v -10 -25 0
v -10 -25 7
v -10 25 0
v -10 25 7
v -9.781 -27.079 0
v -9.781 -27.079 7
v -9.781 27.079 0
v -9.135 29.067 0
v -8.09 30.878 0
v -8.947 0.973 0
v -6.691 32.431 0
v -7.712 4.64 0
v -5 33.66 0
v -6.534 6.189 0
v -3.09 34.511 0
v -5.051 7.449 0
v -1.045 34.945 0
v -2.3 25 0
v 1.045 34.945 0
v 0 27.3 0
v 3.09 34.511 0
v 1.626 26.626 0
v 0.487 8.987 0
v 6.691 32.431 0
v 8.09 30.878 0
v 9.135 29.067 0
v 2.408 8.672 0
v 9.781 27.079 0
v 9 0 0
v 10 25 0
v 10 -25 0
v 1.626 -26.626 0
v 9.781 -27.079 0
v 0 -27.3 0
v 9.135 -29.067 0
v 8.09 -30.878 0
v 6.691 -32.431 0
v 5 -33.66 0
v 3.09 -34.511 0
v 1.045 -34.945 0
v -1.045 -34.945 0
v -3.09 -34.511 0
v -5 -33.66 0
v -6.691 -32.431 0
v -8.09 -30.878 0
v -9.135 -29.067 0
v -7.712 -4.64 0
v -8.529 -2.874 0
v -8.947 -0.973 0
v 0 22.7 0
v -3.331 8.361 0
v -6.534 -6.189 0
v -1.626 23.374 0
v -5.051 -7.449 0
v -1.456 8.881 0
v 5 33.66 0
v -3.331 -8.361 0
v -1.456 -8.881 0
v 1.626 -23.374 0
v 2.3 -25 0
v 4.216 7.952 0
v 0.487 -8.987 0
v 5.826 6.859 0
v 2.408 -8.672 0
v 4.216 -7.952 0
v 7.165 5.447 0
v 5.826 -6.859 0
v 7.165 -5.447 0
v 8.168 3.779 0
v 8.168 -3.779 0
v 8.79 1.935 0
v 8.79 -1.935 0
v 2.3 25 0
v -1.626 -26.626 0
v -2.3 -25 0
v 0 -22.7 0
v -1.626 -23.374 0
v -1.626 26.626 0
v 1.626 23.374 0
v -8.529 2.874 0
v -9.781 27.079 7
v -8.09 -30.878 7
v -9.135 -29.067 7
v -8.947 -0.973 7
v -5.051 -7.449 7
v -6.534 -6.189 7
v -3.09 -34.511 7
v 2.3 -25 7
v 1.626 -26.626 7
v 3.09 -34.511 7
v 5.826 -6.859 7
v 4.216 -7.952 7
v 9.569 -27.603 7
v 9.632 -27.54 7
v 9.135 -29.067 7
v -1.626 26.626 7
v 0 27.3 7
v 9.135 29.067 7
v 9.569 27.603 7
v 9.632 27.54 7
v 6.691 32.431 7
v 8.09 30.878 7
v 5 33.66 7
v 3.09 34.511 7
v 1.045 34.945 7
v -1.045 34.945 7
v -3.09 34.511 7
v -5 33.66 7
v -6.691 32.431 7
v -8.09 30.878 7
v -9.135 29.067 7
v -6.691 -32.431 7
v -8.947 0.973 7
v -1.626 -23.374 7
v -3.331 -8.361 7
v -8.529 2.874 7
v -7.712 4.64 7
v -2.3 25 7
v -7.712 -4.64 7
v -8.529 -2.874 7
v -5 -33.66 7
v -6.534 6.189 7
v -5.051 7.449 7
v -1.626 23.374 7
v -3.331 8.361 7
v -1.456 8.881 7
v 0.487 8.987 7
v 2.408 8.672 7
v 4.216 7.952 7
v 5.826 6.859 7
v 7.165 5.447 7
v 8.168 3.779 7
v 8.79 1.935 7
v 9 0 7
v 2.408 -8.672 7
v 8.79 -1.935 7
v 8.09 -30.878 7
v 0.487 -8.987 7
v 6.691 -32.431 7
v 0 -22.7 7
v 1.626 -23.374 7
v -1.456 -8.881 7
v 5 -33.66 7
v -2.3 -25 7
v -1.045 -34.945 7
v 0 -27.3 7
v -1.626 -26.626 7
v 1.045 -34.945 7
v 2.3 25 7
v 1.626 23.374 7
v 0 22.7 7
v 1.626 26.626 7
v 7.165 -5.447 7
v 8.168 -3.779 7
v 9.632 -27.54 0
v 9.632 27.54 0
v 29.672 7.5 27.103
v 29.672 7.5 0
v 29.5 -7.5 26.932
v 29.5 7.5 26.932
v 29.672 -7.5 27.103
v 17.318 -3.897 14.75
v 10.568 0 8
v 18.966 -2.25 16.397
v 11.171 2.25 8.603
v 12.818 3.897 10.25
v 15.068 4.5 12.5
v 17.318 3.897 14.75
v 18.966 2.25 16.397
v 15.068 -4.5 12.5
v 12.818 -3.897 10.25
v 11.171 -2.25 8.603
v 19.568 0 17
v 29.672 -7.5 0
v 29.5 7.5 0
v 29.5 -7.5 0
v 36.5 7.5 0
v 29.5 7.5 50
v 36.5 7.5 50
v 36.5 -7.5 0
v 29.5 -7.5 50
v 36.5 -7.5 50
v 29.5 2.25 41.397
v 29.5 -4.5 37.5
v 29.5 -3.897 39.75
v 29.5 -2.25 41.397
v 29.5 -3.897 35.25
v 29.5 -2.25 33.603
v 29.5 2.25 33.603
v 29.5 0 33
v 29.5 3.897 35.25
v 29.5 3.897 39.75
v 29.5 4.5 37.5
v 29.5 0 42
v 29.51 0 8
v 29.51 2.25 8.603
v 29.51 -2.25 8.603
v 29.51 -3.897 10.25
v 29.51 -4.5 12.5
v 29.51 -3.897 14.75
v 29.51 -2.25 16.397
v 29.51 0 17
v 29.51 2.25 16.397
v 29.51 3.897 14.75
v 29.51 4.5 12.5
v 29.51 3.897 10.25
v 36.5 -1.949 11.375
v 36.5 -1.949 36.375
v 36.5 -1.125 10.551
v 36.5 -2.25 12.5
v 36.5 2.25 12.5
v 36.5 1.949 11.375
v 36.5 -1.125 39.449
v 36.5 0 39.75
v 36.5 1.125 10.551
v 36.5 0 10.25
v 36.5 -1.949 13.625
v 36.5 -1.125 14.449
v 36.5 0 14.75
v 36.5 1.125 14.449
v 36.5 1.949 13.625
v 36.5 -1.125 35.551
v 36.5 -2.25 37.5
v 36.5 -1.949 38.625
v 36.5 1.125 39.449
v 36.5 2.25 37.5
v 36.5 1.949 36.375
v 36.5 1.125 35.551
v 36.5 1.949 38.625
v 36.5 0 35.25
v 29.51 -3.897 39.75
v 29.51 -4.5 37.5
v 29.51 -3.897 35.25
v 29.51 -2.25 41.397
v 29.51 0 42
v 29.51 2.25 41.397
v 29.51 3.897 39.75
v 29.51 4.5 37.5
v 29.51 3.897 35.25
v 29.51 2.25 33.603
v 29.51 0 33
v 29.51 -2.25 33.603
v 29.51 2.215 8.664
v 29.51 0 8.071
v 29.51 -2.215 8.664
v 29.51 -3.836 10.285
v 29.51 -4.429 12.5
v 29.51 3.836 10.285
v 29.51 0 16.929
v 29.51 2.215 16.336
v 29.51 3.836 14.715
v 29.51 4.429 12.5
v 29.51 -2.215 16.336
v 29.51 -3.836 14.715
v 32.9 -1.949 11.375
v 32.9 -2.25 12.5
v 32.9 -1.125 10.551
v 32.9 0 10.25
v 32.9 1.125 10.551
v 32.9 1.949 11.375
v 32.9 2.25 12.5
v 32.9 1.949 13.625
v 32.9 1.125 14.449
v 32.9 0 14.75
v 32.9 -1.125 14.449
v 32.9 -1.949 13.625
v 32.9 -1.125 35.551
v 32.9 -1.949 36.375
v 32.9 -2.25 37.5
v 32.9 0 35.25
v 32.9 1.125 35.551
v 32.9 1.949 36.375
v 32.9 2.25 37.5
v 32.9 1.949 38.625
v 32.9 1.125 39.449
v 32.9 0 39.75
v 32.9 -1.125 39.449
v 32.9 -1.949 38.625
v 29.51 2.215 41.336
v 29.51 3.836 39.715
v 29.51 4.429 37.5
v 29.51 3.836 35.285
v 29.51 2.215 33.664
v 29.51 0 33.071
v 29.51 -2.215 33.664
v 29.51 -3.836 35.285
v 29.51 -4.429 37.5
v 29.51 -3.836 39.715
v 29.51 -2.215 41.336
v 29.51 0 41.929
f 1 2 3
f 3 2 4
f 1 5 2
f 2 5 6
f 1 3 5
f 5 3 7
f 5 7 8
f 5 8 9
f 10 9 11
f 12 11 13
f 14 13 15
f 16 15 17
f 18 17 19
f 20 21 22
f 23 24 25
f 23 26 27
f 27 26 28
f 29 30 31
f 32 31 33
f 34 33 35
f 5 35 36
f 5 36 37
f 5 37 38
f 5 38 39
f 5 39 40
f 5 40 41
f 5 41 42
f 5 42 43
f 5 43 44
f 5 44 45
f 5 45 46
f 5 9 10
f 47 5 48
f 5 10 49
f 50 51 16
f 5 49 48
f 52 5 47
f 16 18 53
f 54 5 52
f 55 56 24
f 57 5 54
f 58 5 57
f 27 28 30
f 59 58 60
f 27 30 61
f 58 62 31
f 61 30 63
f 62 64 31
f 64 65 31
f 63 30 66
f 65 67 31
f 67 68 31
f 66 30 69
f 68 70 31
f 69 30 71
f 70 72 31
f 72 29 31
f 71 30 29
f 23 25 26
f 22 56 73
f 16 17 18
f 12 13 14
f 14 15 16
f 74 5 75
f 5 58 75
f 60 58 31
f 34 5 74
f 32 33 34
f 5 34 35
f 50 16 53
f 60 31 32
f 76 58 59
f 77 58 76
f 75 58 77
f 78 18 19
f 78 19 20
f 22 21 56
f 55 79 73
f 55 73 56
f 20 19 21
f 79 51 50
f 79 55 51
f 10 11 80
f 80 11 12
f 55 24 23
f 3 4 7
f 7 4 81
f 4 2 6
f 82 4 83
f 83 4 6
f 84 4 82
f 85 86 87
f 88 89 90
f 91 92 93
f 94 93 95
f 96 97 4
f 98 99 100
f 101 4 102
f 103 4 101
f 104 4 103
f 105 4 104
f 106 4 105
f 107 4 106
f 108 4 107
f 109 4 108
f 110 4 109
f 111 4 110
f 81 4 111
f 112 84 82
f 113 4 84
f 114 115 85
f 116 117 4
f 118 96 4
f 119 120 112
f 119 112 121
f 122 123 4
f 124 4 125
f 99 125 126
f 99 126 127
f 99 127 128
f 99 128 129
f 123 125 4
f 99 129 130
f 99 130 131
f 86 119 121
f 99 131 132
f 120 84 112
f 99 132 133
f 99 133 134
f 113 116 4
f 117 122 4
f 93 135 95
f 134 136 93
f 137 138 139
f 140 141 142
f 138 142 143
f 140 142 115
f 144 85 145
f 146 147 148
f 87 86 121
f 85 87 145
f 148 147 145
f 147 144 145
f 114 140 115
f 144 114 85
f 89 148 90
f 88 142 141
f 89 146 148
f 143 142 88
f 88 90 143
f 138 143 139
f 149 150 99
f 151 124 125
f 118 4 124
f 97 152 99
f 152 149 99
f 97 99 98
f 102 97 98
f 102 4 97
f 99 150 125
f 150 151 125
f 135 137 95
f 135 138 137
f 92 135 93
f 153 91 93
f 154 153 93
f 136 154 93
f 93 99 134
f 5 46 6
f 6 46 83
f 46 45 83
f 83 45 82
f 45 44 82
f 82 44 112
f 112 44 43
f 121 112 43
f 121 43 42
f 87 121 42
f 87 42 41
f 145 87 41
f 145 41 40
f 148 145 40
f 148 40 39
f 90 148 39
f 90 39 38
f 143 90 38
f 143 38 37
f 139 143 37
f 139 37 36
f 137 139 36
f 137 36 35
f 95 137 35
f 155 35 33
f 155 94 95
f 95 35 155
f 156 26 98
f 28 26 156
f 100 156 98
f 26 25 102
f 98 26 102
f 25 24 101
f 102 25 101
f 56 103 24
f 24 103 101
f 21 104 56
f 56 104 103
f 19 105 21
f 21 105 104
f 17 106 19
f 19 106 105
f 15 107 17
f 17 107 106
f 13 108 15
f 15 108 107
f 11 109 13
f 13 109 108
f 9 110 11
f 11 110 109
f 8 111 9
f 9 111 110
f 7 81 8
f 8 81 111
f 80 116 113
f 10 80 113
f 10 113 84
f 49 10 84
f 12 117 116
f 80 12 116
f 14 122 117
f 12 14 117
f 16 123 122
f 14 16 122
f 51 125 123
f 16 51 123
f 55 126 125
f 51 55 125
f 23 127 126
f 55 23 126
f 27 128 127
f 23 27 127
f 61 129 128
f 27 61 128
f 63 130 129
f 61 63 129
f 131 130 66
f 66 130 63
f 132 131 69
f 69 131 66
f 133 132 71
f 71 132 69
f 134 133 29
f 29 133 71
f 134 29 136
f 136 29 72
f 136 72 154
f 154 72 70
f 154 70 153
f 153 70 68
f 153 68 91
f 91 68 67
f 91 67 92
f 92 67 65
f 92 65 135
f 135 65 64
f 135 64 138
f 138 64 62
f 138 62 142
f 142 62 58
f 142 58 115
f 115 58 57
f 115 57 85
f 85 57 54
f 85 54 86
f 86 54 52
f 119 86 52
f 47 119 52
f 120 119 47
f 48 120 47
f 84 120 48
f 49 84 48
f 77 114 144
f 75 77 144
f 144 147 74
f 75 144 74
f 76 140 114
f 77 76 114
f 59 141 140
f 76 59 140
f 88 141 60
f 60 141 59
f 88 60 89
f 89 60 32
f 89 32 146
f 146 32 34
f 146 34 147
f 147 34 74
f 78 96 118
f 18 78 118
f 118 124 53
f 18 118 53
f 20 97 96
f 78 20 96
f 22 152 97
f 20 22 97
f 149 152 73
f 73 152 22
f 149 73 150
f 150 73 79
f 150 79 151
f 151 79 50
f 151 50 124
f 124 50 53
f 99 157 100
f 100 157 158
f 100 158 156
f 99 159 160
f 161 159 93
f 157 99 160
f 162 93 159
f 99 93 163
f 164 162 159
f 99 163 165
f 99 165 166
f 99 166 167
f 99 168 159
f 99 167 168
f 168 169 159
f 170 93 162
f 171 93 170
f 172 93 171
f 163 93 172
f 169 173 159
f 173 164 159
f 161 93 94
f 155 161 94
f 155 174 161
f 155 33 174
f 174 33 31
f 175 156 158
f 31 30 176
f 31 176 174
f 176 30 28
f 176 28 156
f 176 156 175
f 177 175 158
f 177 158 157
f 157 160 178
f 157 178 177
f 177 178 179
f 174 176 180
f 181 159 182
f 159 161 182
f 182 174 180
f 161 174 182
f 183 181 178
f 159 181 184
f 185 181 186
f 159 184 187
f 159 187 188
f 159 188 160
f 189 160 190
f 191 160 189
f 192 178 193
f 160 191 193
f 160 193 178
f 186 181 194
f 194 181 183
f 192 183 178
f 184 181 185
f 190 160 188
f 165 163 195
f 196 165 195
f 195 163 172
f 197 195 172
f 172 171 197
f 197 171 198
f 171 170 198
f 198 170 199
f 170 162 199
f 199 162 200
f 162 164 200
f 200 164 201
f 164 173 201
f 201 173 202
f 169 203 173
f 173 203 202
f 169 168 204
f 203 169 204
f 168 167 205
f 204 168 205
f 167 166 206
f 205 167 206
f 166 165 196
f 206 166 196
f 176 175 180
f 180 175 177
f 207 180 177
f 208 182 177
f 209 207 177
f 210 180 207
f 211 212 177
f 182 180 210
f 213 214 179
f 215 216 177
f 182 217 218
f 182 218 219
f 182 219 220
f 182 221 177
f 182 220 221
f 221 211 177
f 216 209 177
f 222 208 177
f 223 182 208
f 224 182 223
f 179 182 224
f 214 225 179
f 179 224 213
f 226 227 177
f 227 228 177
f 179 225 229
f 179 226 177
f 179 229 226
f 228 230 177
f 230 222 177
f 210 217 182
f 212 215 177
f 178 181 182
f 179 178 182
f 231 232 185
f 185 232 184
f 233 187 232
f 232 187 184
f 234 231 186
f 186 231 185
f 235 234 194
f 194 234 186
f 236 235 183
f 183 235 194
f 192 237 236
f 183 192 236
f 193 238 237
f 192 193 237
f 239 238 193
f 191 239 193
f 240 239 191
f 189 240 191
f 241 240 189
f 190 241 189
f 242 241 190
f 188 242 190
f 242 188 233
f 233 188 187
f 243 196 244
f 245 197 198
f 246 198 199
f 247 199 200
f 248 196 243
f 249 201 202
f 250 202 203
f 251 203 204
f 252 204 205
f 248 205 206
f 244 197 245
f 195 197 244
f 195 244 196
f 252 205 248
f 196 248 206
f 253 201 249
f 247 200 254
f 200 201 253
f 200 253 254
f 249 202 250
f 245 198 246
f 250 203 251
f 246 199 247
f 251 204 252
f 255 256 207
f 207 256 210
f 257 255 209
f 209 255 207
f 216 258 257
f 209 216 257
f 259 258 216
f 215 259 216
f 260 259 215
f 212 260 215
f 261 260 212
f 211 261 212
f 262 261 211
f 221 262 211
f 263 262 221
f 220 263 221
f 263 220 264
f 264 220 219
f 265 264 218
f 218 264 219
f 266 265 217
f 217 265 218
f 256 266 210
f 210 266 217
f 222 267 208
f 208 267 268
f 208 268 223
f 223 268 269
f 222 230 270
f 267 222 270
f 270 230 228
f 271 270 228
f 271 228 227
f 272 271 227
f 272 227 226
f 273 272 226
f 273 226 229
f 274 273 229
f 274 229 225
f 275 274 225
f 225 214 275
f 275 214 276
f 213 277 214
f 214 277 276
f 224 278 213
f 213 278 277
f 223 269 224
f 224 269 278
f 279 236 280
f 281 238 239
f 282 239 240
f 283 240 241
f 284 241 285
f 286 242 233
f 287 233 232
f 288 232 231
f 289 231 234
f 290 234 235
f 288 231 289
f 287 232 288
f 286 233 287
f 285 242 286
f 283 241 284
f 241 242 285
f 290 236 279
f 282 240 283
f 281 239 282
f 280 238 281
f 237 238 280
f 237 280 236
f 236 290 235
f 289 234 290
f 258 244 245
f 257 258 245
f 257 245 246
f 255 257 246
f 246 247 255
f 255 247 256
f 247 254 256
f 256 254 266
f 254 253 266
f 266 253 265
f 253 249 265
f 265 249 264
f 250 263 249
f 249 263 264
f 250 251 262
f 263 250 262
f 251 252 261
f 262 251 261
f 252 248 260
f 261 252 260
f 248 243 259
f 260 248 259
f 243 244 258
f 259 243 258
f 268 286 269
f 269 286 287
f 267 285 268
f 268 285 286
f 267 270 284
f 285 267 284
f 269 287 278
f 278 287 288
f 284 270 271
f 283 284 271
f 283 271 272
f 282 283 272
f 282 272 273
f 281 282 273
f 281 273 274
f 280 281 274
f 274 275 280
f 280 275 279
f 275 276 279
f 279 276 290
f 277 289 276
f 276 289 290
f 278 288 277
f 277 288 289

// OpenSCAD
mount_sep = 50;
mount_rad = 2.3;
center_rad = 18/2;

//distance from center hole to back
mount_offset = 40;

wall = 7;
plate = 20;
spine = 15;
spine_height = 50;



difference(){
	union(){
		//make the base plate
		translate([0,0,wall/2])
		cube([plate,mount_sep,wall], center=true);
	
		for(i=[-1,1]){
			translate([0,mount_sep/2*i,0])
			cylinder(r=plate/2, h=wall);
		}

		//vertical spine
		translate([mount_offset-wall,0,spine_height/2])
		cube([wall, spine, spine_height], center=true);
		
		difference(){
			translate([0,0,mount_offset*2/sqrt(2)/2-2])
			rotate([0,0,45])
			cube([mount_offset*2/sqrt(2)-4, mount_offset*2/sqrt(2)-4,mount_offset*2/sqrt(2)-4], center=true);

			translate([0,0,54])
			rotate([0,45,0])
			cube([mount_offset*2,mount_offset*2,mount_offset*2],center=true);
	
			translate([-mount_offset*2,0,0])
			cube([mount_offset*4,mount_offset*4,mount_offset*4],center=true);
			
			translate([mount_offset-.01,0,spine_height/2-.1])
			cube([wall, spine, spine_height], center=true);
		}
		
	}

	//base holes
	translate([0,0,-.1]){
		//mount holes
		for(i=[-1,1]){
			translate([0,mount_sep/2*i,0])
			cylinder(r=mount_rad, h=wall+1);
		}

		//center hole
		cylinder(r=center_rad, h=wall*wall);
	}

	//mount holes
	translate([mount_offset-wall*1.5,0,spine_height/2])
	for(j=[0,1]){
		mirror([0,0,j])
		translate([0,0,spine_height/4])
		rotate([0,90,0]){
			cylinder(r=2.25, h=wall*2, $fn=12);
			translate([0,0,-.1])
			cylinder(r1=2.25*2, r2=2.25,h=wall/2, $fn=12);
			translate([0,0,-wall*4])
			cylinder(r1=2.25*2, r2=2.25*2,h=wall*4+.01, $fn=12);
		}
	}
}
